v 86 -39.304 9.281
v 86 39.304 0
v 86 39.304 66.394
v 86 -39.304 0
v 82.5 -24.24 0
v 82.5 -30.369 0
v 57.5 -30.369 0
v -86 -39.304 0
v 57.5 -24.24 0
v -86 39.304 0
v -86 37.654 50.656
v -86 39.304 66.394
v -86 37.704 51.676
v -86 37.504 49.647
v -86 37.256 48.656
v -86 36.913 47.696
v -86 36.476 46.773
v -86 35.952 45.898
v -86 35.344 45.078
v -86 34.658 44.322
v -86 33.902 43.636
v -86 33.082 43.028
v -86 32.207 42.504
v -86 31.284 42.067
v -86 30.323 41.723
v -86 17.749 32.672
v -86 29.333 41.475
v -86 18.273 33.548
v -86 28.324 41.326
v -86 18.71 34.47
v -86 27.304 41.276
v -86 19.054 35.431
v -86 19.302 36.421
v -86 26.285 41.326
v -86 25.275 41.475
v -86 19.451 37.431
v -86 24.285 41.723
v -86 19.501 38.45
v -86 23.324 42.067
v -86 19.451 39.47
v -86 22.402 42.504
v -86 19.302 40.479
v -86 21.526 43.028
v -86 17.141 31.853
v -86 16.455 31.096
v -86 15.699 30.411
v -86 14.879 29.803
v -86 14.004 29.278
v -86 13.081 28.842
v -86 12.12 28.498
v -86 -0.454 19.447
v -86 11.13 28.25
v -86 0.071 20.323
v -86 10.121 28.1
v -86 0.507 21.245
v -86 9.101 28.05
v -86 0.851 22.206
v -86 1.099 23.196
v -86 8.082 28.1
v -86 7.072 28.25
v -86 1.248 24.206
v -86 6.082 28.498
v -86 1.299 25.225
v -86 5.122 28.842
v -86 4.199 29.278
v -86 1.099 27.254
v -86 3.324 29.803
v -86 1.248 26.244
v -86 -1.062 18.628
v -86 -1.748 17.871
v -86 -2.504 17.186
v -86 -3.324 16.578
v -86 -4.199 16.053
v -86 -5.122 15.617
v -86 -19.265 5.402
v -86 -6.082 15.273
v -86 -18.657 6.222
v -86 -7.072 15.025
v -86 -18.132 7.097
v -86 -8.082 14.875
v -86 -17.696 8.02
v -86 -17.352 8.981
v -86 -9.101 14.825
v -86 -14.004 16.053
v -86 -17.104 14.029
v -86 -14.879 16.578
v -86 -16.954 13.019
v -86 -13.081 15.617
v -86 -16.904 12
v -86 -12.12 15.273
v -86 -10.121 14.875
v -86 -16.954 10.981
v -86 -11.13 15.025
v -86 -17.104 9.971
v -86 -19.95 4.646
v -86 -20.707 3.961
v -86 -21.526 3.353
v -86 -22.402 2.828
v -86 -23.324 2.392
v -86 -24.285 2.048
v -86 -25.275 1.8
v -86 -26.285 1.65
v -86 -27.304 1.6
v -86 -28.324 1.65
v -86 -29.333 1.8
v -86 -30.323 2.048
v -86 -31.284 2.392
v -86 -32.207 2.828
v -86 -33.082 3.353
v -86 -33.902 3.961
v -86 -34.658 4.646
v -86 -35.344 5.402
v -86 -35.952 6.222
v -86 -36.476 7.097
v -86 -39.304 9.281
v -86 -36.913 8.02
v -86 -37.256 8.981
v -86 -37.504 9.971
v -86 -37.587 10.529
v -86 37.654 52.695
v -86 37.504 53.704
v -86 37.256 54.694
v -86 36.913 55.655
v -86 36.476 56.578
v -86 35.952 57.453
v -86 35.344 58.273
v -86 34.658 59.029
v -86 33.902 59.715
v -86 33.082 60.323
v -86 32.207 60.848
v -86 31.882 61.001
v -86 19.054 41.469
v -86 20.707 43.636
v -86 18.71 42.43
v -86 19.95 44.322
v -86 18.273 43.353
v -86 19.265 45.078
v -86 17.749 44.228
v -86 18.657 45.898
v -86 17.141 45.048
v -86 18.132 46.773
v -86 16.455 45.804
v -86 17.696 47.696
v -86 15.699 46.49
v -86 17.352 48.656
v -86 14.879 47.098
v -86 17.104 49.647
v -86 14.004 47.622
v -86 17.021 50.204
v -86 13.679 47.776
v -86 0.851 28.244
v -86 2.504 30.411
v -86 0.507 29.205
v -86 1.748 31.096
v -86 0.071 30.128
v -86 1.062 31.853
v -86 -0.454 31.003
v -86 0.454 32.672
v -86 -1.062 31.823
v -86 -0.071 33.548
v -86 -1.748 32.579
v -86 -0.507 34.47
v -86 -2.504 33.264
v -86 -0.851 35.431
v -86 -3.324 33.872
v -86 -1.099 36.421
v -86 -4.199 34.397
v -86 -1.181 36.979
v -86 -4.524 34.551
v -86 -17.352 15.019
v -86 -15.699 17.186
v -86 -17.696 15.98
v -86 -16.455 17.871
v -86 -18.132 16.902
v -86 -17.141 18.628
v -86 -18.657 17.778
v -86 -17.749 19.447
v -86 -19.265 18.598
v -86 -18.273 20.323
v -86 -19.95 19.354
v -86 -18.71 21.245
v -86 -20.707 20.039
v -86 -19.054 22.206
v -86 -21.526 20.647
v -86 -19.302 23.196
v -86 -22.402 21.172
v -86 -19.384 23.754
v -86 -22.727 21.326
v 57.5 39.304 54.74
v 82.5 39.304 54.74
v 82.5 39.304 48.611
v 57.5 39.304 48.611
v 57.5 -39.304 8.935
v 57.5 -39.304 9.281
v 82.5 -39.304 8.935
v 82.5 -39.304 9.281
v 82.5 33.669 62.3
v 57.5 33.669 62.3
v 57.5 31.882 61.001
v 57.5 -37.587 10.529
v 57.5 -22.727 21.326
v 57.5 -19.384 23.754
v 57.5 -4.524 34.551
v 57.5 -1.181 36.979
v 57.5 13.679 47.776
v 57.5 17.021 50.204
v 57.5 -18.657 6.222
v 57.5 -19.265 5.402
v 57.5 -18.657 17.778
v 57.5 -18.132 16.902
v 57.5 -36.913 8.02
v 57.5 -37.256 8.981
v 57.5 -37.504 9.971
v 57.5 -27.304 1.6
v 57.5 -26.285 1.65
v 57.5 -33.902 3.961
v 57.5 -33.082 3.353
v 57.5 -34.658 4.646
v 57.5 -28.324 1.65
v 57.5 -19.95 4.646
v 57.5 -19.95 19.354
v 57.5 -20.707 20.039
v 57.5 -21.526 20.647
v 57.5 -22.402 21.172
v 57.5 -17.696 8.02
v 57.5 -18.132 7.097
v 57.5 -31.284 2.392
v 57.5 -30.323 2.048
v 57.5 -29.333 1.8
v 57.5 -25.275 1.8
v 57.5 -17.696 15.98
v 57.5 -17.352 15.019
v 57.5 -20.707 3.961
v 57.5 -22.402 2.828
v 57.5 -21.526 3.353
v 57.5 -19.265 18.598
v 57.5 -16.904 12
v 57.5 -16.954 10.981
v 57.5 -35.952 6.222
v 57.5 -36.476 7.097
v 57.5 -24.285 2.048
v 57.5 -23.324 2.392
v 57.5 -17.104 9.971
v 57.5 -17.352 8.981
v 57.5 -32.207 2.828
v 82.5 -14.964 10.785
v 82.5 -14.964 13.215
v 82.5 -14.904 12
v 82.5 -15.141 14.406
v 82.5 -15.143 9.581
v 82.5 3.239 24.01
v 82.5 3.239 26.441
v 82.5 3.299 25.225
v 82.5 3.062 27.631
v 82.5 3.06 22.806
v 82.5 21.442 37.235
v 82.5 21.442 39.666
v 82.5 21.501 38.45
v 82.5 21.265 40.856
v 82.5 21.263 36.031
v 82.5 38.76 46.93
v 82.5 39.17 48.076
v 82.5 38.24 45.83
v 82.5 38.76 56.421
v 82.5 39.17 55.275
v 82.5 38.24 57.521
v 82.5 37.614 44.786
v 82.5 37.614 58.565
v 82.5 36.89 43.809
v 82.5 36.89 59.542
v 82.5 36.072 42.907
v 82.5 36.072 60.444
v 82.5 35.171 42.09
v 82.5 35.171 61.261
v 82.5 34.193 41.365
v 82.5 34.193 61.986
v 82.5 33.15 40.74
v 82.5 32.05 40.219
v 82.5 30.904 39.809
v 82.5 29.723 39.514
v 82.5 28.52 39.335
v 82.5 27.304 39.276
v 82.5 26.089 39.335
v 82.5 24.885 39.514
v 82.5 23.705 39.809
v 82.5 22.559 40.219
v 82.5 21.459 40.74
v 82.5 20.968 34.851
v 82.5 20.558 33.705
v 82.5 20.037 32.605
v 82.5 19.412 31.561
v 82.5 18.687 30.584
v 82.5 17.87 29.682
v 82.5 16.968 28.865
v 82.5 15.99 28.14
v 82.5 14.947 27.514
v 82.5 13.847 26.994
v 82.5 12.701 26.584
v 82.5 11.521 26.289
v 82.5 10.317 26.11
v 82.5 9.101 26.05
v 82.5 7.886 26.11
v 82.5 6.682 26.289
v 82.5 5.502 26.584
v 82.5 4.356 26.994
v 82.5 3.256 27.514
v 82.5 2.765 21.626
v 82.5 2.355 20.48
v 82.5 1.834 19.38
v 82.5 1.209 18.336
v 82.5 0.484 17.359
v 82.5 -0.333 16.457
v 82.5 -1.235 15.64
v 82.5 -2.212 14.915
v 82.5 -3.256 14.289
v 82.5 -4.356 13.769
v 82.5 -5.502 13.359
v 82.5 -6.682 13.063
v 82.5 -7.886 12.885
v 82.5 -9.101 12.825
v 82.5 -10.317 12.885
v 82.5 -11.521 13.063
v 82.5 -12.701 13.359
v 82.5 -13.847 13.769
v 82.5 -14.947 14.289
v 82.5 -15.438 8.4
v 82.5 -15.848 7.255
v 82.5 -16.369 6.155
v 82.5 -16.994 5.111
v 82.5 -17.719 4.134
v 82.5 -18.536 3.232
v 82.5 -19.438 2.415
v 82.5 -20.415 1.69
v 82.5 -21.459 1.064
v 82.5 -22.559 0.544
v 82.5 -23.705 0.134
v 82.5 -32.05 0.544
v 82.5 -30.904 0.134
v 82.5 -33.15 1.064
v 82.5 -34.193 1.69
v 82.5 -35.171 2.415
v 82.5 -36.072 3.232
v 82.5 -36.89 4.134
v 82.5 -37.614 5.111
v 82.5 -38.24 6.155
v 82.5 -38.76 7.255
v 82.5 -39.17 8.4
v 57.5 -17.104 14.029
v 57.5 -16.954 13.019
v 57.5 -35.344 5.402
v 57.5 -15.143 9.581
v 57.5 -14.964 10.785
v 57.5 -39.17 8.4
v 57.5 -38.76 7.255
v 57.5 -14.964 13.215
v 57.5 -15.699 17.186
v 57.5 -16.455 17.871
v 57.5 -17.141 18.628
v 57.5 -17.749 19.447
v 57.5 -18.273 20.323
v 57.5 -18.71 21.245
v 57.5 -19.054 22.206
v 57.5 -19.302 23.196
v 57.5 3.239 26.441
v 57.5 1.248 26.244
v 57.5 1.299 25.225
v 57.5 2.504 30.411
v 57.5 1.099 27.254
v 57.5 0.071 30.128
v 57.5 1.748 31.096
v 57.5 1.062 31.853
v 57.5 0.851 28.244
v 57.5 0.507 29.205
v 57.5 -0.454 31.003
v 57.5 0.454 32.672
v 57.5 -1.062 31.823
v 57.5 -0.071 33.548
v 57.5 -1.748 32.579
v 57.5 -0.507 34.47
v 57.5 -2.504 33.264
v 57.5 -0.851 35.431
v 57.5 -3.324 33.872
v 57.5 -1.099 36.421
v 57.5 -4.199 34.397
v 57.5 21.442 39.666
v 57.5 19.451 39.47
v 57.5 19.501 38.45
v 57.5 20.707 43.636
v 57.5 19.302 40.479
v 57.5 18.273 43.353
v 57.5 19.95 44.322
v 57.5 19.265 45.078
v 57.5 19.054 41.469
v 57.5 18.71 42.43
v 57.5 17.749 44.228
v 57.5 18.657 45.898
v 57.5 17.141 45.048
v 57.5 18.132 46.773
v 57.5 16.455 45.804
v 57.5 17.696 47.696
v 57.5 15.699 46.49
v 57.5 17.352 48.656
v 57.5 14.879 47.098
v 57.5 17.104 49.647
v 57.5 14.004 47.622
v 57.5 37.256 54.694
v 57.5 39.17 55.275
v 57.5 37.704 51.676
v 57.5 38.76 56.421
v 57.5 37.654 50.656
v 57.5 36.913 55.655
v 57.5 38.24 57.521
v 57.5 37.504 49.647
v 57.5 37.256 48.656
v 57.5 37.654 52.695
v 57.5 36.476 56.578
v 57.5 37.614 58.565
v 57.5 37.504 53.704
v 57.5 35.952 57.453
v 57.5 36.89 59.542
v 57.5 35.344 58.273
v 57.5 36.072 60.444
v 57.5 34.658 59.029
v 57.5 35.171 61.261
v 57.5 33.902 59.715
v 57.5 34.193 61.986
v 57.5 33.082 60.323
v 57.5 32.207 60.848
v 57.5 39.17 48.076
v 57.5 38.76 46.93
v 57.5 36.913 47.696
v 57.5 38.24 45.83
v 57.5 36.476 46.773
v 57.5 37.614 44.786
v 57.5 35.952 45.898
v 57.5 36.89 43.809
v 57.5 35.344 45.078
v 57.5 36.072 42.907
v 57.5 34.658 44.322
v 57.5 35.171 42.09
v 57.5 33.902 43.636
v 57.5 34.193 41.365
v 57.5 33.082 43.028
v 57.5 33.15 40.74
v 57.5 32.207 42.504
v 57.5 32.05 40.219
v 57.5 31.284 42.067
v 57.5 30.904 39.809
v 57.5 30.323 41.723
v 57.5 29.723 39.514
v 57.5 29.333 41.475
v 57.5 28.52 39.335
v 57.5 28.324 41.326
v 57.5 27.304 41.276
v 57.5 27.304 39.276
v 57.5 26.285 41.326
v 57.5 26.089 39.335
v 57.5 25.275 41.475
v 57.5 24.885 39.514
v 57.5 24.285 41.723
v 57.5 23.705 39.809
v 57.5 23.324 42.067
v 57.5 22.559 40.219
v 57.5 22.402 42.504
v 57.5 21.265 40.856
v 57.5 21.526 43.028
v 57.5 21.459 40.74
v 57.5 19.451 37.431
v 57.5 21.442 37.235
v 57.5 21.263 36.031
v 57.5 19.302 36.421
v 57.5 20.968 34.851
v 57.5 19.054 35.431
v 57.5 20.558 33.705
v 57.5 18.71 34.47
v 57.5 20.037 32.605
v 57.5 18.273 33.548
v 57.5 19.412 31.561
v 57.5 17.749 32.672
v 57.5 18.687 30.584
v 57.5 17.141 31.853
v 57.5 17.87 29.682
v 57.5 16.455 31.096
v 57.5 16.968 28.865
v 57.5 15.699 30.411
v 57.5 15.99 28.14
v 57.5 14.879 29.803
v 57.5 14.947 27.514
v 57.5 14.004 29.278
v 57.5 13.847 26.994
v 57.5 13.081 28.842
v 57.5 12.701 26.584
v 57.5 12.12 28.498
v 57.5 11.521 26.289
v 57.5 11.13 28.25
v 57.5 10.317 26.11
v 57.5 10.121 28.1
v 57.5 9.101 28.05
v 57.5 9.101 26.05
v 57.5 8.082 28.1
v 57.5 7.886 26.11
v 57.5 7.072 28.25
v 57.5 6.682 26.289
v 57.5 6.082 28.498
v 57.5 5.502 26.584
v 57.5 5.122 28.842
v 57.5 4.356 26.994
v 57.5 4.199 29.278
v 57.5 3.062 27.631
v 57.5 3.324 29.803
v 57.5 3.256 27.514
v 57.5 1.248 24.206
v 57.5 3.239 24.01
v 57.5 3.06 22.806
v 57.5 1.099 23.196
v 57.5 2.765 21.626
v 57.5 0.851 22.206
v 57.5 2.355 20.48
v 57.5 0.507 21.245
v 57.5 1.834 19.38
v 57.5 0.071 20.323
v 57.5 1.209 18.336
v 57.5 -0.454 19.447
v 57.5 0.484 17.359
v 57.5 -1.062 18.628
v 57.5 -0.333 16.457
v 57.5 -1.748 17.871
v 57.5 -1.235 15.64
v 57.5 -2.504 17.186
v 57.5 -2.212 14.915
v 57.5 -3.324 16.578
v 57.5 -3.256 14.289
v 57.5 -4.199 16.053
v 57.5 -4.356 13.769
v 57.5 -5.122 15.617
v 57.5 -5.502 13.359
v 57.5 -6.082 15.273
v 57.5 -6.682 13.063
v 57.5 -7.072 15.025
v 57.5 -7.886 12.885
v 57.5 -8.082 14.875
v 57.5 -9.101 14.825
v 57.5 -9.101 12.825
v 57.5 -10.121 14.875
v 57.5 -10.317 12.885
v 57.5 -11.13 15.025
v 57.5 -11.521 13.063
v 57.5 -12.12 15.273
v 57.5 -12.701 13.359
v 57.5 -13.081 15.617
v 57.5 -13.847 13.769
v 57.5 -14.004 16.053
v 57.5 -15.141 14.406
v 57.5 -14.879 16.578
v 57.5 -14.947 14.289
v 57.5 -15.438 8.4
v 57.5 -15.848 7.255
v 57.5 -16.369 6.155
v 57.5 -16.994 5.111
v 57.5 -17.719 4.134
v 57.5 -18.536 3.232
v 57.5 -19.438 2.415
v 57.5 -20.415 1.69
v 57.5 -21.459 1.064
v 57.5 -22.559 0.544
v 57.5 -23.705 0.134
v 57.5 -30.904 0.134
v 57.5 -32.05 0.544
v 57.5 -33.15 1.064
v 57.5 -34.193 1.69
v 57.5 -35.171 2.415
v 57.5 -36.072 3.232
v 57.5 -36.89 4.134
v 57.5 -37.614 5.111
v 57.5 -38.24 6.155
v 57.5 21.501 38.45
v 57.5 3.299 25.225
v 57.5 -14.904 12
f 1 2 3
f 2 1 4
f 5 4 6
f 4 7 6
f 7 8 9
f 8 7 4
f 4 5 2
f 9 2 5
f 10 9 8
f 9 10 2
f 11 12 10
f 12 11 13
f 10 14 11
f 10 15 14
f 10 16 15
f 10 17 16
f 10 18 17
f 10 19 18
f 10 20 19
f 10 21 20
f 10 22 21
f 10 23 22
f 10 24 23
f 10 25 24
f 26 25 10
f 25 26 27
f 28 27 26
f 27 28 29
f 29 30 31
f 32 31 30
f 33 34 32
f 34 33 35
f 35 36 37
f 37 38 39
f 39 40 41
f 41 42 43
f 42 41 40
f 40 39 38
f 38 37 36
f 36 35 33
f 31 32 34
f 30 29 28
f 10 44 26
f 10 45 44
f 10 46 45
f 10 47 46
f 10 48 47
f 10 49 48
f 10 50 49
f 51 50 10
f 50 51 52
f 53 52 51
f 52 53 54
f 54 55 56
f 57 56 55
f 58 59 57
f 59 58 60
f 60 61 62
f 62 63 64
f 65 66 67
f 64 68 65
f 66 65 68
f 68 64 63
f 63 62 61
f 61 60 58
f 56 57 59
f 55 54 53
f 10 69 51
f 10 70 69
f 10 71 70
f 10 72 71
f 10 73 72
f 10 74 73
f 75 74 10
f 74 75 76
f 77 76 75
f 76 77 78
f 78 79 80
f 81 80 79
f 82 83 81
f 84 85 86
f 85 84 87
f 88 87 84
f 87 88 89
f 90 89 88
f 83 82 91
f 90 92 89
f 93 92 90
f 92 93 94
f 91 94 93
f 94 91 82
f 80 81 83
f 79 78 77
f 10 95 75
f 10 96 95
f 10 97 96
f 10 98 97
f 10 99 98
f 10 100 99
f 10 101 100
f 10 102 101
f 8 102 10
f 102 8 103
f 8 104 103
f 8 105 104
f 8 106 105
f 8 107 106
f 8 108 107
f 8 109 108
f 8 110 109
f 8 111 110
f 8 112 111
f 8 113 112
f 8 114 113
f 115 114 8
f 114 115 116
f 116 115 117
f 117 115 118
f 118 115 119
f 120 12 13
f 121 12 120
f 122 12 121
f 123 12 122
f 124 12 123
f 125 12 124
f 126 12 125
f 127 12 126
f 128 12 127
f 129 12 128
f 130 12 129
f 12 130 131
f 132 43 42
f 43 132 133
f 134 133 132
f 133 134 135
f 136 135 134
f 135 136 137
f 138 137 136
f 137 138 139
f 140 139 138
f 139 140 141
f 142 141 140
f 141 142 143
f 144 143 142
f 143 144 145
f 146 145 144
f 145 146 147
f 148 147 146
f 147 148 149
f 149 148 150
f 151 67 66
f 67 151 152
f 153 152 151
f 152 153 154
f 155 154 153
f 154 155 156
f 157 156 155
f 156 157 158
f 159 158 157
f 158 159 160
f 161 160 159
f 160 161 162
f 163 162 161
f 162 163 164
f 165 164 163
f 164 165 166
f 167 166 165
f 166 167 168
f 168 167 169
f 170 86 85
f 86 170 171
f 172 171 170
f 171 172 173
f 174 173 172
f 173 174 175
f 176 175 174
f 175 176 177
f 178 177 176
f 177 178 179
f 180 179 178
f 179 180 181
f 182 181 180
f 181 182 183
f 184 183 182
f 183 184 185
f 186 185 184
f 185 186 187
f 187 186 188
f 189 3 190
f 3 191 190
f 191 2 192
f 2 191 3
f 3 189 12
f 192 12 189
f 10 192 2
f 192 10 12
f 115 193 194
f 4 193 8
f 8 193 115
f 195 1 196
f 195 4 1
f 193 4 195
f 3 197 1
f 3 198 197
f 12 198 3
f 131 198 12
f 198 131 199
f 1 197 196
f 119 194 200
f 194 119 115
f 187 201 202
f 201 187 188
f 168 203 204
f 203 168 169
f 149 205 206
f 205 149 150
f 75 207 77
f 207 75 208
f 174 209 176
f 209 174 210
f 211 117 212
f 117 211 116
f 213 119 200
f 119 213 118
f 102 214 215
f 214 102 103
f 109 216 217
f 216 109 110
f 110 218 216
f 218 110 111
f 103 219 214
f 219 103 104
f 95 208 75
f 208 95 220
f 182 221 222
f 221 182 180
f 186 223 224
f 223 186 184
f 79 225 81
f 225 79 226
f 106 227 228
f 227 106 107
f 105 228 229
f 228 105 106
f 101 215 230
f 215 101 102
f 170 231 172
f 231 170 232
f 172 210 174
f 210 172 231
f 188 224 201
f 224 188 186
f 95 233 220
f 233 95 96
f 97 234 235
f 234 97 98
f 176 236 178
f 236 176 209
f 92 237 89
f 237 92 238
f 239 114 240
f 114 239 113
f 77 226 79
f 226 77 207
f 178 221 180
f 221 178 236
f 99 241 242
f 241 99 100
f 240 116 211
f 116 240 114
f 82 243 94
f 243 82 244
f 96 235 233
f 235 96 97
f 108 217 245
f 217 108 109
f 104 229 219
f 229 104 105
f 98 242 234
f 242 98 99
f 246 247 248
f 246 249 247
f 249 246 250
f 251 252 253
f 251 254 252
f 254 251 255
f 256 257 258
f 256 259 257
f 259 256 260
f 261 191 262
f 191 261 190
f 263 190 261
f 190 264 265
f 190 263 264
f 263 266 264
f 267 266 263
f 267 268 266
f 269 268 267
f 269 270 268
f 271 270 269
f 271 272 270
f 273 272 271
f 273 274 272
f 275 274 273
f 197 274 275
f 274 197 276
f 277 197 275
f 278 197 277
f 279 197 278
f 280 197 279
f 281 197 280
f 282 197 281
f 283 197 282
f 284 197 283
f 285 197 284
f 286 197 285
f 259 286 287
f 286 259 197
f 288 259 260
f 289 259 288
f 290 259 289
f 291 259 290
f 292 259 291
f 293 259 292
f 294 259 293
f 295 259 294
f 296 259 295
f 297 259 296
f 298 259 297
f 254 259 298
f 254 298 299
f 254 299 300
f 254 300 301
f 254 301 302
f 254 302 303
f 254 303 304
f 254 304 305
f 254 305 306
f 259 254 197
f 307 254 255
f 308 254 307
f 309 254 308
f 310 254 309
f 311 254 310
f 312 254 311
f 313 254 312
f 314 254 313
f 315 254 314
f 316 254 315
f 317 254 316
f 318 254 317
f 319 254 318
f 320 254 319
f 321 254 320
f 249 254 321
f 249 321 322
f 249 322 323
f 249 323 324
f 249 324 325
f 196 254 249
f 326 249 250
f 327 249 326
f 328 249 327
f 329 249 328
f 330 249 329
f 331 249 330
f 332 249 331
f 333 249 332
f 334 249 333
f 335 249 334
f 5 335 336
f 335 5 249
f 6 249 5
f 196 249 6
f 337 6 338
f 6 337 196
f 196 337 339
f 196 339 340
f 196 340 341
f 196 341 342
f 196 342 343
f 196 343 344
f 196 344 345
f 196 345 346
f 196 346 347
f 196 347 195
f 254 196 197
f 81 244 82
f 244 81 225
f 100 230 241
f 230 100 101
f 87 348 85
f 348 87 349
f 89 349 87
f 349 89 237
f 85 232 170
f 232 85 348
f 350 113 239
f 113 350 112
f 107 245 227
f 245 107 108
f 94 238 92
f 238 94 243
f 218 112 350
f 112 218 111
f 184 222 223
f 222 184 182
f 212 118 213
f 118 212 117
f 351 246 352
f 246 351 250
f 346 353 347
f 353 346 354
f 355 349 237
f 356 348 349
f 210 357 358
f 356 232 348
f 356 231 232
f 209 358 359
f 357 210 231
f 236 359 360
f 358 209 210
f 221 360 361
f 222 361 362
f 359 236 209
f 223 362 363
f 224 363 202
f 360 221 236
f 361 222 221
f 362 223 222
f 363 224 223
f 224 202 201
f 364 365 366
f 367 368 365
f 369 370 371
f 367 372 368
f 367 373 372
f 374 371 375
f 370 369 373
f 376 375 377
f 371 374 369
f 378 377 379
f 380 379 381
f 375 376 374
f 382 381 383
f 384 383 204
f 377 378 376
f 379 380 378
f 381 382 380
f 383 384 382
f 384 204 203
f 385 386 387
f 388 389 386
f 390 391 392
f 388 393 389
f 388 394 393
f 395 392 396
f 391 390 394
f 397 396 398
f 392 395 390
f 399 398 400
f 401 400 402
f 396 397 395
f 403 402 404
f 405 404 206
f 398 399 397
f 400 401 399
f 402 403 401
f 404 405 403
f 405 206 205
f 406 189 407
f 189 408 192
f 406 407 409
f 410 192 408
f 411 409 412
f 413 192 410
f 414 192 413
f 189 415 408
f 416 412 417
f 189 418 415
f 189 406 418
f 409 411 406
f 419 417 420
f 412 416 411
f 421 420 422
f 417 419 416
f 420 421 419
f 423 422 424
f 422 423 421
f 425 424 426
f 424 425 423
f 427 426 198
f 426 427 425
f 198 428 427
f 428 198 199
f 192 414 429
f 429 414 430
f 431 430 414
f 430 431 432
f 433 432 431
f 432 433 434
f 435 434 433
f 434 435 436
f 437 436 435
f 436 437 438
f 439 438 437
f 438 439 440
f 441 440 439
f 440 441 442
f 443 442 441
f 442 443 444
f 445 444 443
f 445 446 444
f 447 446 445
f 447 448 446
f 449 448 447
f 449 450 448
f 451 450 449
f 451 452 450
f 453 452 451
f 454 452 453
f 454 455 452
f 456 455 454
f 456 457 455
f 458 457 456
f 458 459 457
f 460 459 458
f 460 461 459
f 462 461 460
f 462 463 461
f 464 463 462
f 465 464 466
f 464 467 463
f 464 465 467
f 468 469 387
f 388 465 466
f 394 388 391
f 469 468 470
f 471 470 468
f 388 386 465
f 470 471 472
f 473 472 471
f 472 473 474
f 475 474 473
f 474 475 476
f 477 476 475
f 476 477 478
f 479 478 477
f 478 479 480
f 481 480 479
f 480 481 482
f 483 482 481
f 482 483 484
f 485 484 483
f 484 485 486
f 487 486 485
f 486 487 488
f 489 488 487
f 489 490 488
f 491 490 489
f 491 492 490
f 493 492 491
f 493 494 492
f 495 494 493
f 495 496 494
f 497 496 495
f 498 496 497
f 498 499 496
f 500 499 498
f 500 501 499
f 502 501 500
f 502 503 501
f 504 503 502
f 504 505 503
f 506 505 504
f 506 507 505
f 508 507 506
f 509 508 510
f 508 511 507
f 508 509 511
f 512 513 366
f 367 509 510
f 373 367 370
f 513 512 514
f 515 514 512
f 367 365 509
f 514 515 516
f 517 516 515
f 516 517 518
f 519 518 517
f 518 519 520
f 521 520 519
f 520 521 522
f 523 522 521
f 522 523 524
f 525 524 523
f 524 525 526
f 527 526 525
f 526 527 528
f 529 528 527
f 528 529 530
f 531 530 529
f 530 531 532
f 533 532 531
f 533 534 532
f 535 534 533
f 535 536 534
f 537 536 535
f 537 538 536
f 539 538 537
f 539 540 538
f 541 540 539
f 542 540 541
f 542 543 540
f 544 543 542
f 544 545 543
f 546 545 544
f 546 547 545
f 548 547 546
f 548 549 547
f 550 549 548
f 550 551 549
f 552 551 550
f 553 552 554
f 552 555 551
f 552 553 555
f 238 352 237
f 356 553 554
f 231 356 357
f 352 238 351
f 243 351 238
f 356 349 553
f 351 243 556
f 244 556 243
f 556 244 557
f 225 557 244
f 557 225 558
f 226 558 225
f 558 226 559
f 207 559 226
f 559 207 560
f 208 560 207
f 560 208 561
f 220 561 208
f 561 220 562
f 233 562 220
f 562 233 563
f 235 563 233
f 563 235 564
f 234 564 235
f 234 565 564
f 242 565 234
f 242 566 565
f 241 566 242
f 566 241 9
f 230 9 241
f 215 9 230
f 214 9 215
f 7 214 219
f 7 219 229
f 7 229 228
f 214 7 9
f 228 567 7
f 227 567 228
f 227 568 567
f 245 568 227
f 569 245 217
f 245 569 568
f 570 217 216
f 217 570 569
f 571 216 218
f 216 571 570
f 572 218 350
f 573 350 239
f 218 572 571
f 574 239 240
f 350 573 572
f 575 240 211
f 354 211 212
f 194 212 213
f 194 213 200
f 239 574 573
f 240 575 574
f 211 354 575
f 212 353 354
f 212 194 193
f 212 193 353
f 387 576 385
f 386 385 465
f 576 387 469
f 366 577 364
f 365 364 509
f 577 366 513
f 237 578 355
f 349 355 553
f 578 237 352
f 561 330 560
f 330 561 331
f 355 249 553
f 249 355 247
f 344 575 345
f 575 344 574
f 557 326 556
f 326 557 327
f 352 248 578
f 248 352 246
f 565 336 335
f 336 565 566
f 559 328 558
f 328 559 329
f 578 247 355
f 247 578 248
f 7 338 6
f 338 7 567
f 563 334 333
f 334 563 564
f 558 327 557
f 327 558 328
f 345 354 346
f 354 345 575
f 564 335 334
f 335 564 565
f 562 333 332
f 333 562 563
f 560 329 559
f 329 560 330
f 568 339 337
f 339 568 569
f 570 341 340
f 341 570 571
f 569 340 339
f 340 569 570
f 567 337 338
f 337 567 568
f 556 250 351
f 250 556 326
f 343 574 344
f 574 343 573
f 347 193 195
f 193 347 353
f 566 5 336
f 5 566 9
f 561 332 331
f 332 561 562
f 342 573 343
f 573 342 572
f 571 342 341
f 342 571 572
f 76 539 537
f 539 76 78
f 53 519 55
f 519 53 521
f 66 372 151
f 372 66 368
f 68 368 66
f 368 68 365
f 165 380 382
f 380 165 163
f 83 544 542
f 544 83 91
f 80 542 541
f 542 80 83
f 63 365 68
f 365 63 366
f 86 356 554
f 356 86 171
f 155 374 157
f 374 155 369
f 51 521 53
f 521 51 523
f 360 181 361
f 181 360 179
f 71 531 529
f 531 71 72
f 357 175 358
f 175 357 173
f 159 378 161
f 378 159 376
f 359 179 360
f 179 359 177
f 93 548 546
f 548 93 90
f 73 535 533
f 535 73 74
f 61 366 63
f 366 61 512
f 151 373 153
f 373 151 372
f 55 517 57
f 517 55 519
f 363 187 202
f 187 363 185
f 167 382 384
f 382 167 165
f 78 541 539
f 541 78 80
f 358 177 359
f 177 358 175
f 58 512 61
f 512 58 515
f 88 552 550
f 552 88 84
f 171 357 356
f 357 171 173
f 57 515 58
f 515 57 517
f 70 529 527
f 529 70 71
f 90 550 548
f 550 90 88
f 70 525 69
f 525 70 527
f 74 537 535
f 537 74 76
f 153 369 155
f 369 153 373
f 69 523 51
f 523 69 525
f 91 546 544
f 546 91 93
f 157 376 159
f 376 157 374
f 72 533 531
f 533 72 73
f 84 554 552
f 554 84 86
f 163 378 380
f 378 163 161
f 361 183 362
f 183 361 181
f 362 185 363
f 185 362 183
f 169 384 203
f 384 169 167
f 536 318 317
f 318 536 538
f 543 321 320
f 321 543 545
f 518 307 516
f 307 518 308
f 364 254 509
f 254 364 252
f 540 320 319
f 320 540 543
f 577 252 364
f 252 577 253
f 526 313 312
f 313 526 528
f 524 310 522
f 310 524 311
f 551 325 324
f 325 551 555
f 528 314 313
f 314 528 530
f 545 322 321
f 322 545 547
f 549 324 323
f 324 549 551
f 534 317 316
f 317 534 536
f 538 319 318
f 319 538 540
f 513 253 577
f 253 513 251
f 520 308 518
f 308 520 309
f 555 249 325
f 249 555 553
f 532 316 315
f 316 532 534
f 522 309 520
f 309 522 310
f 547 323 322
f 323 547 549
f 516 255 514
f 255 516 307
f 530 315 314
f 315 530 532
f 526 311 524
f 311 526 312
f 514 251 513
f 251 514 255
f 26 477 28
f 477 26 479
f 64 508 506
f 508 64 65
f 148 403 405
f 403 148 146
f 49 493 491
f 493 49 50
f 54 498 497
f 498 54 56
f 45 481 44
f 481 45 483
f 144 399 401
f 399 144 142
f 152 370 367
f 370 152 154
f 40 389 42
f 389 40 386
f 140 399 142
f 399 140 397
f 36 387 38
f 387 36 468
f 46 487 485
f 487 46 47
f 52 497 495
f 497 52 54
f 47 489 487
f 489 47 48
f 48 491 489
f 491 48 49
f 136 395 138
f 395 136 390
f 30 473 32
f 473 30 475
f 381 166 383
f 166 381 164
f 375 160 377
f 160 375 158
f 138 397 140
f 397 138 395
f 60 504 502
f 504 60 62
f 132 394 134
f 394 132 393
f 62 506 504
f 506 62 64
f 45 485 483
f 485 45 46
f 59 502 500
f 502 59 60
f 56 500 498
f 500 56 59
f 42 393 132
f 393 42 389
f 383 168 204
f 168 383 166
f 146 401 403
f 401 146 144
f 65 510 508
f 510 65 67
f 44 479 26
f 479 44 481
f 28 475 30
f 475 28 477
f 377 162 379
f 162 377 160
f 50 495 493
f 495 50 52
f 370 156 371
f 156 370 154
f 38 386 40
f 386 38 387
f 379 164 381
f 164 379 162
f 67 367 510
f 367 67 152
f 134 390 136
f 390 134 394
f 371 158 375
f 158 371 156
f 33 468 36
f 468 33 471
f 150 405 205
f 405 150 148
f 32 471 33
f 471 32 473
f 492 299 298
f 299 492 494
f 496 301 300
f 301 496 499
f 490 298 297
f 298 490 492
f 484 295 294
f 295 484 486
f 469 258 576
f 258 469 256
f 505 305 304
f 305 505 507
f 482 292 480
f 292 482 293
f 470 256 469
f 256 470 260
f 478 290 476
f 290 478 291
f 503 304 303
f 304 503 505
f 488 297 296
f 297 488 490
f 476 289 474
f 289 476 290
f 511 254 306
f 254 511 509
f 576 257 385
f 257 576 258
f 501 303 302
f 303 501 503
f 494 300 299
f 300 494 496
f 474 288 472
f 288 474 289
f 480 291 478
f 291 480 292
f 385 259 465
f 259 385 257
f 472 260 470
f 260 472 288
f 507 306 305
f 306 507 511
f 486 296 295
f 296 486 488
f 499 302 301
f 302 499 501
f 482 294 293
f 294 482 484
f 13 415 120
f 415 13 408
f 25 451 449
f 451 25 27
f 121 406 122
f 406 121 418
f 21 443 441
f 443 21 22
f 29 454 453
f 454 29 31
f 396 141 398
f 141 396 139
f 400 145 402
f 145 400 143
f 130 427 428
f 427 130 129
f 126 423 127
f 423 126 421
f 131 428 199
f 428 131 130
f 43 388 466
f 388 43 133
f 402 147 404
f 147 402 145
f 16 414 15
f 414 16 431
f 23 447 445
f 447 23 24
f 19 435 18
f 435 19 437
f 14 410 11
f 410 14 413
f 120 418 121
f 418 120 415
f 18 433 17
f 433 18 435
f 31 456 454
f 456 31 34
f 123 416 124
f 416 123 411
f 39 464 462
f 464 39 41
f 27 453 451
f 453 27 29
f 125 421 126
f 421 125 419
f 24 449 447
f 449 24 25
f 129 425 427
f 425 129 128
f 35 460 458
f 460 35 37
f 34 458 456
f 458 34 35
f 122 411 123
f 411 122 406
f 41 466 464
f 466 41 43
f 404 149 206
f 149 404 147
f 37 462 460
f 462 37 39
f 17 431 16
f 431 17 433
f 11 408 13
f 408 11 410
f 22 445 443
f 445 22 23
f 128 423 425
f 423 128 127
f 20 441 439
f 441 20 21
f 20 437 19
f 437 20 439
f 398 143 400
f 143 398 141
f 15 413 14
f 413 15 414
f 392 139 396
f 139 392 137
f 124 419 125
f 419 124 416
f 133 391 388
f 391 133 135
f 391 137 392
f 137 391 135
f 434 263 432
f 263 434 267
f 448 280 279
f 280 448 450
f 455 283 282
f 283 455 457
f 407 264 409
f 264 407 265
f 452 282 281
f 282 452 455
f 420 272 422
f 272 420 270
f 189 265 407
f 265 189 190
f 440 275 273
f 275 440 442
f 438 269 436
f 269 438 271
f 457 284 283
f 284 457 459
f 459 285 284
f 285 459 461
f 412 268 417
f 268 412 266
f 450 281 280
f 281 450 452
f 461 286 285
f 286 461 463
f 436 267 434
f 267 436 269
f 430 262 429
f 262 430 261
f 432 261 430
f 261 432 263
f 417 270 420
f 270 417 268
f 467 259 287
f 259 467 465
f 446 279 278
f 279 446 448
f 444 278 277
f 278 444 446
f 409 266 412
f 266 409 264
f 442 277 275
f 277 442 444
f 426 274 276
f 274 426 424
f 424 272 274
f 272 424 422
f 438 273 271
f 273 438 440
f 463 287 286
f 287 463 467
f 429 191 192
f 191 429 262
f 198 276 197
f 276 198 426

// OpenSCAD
// file: common.scad
// ============================================================
// common.scad — shared parameters + modules for all designs
// LOCKED PEN SPECIFICATION (do not change)
// ============================================================
PEN_L = 165;      // pen length (mm)
PEN_A = 17;       // pen cross-section minor
PEN_B = 20;       // pen cross-section major (used as diameter envelope)
CLEAR = 0.4;      // fit clearance
WALL  = 1.6;      // minimum wall thickness

$fn = 64;

RCH = PEN_B/2 + CLEAR;   // = 10.4  channel radius
EPS = 0.01;

// --- open-top U trough cut, axis along X, centered at local origin -----------
// Removes a lower half-cylinder of radius r plus a full-width vertical slot
// upward, so the channel is open at the top (no ceiling -> no overhang).
module trough_cut(len, r=RCH, top=80) {
    union() {
        rotate([0,90,0]) cylinder(h=len, r=r, center=true);
        translate([0,0,top/2]) cube([len, 2*r, top], center=true); // slot upward
    }
}

// --- teardrop hole, axis along X, centered at local origin --------------------
// 45-degree self-supporting apex pointing +Z so a horizontal bore can print
// without support.
module teardrop_cut(len, r=RCH) {
    rotate([0,90,0])
        linear_extrude(height=len, center=true)
            union() {
                circle(r=r);
                polygon([[ 0.7071*r, 0.7071*r],
                         [ 0,         1.4142*r],
                         [-0.7071*r,  0.7071*r]]);
            }
}

// --- dial relief: widened open-top pocket at one channel end -----------------
// place at the +X or -X end of a channel so the dose dial clears / can be turned
module dial_relief(end_x, r=RCH+2.2, len=28, top=80) {
    translate([end_x, 0, 0]) trough_cut(len, r, top);
}
// file: lipcradle_lib.scad
// lipcradle_lib.scad — SINGLE-PART reclined rack with an integral front lip per
// cradle (no cover). Continuous solid curbs (ramp sheared above the pen centers)
// + a solid base. Pens nestle in and lift out the front over the lip — no snap,
// nothing tolerance-critical.
//   endcaps : closed walls at BOTH ends of every channel so pens can't slide out
//             the ends if the rack is tipped sideways.
//   scoop   : a finger scallop at the front-center of each cradle so you can get
//             a fingertip under a pen to lift it out.
//   dial relief : a wider open-top pocket at the +X end so the dose dial clears
//             and can be turned (kept inside the end wall).
include <common.scad>

LBLK = PEN_L + 7;   // 172
ENDW = (LBLK - PEN_L) / 2;   // 3.5 mm end wall each side when endcaps=true

module lipcradle(n=4, phi=36, P=22.5, lip=6, rr=RCH+2, rlen=25,
                 base_h=3, endcaps=true, scoop=true, side_open=false) {
    cph=cos(phi); sph=sin(phi);
    yc=[for(i=[0:n-1]) (-(n-1)/2+i)*P*cph];
    zc=[for(i=[0:n-1]) (WALL+RCH)+i*P*sph];
    ymn=min(yc)-RCH-WALL; ymx=max(yc)+RCH+WALL;
    Wb=ymx-ymn; ycen=(ymx+ymn)/2; Hb=max(zc)+RCH+8;
    big=800;
    // side_open: channel goes through the -X end (insert from the side), capped +X
    chan_len = side_open ? (PEN_L/2 + LBLK/2 + 1) : (endcaps ? PEN_L : LBLK+2);
    chan_cx  = side_open ? (PEN_L/2 - LBLK/2 - 1)/2 : 0;
    relief_cx = PEN_L/2 - rlen/2;               // dial pocket inside the +X wall

    difference() {
        union() {
            // wedge sheared 'lip' above the cradle centers -> continuous curbs
            difference() {
                translate([0,ycen,Hb/2]) cube([LBLK,Wb,Hb],center=true);
                translate([0,yc[0],zc[0]+lip]) rotate([phi,0,0])
                    translate([0,0,big/2]) cube([LBLK+2,big,big],center=true);
            }
            translate([0,ycen,base_h/2]) cube([LBLK,Wb,base_h],center=true); // base
        }
        for(i=[0:n-1]) {
            // pen channel (closed both ends, or open -X end for side loading)
            translate([chan_cx,yc[i],zc[i]]) rotate([0,90,0])
                cylinder(h=chan_len, r=RCH, center=true);
            // dial relief: wider open-top pocket near the +X end (inside the wall)
            translate([relief_cx,yc[i],zc[i]]) rotate([0,90,0])
                cylinder(h=rlen, r=rr, center=true);
            // finger scoop: scallop the front curb at mid-length to lift the pen
            if (scoop)
                translate([0, yc[i]-RCH*cph-1.5, zc[i]-RCH*sph+1.5])
                    scale([0.7,1,1]) sphere(r=11);
        }
    }
}
// main file
// sk1_sketch — from Jason's sketch: wedge with 4 stacked horizontal channels,
// each with a front lip to catch the pen; insert from the SIDE (one open end),
// pen settles into its channel and the lip keeps it from falling out the front.
include <lipcradle_lib.scad>
lipcradle(n=4, phi=36, P=22.5, lip=6, scoop=false, side_open=true);
